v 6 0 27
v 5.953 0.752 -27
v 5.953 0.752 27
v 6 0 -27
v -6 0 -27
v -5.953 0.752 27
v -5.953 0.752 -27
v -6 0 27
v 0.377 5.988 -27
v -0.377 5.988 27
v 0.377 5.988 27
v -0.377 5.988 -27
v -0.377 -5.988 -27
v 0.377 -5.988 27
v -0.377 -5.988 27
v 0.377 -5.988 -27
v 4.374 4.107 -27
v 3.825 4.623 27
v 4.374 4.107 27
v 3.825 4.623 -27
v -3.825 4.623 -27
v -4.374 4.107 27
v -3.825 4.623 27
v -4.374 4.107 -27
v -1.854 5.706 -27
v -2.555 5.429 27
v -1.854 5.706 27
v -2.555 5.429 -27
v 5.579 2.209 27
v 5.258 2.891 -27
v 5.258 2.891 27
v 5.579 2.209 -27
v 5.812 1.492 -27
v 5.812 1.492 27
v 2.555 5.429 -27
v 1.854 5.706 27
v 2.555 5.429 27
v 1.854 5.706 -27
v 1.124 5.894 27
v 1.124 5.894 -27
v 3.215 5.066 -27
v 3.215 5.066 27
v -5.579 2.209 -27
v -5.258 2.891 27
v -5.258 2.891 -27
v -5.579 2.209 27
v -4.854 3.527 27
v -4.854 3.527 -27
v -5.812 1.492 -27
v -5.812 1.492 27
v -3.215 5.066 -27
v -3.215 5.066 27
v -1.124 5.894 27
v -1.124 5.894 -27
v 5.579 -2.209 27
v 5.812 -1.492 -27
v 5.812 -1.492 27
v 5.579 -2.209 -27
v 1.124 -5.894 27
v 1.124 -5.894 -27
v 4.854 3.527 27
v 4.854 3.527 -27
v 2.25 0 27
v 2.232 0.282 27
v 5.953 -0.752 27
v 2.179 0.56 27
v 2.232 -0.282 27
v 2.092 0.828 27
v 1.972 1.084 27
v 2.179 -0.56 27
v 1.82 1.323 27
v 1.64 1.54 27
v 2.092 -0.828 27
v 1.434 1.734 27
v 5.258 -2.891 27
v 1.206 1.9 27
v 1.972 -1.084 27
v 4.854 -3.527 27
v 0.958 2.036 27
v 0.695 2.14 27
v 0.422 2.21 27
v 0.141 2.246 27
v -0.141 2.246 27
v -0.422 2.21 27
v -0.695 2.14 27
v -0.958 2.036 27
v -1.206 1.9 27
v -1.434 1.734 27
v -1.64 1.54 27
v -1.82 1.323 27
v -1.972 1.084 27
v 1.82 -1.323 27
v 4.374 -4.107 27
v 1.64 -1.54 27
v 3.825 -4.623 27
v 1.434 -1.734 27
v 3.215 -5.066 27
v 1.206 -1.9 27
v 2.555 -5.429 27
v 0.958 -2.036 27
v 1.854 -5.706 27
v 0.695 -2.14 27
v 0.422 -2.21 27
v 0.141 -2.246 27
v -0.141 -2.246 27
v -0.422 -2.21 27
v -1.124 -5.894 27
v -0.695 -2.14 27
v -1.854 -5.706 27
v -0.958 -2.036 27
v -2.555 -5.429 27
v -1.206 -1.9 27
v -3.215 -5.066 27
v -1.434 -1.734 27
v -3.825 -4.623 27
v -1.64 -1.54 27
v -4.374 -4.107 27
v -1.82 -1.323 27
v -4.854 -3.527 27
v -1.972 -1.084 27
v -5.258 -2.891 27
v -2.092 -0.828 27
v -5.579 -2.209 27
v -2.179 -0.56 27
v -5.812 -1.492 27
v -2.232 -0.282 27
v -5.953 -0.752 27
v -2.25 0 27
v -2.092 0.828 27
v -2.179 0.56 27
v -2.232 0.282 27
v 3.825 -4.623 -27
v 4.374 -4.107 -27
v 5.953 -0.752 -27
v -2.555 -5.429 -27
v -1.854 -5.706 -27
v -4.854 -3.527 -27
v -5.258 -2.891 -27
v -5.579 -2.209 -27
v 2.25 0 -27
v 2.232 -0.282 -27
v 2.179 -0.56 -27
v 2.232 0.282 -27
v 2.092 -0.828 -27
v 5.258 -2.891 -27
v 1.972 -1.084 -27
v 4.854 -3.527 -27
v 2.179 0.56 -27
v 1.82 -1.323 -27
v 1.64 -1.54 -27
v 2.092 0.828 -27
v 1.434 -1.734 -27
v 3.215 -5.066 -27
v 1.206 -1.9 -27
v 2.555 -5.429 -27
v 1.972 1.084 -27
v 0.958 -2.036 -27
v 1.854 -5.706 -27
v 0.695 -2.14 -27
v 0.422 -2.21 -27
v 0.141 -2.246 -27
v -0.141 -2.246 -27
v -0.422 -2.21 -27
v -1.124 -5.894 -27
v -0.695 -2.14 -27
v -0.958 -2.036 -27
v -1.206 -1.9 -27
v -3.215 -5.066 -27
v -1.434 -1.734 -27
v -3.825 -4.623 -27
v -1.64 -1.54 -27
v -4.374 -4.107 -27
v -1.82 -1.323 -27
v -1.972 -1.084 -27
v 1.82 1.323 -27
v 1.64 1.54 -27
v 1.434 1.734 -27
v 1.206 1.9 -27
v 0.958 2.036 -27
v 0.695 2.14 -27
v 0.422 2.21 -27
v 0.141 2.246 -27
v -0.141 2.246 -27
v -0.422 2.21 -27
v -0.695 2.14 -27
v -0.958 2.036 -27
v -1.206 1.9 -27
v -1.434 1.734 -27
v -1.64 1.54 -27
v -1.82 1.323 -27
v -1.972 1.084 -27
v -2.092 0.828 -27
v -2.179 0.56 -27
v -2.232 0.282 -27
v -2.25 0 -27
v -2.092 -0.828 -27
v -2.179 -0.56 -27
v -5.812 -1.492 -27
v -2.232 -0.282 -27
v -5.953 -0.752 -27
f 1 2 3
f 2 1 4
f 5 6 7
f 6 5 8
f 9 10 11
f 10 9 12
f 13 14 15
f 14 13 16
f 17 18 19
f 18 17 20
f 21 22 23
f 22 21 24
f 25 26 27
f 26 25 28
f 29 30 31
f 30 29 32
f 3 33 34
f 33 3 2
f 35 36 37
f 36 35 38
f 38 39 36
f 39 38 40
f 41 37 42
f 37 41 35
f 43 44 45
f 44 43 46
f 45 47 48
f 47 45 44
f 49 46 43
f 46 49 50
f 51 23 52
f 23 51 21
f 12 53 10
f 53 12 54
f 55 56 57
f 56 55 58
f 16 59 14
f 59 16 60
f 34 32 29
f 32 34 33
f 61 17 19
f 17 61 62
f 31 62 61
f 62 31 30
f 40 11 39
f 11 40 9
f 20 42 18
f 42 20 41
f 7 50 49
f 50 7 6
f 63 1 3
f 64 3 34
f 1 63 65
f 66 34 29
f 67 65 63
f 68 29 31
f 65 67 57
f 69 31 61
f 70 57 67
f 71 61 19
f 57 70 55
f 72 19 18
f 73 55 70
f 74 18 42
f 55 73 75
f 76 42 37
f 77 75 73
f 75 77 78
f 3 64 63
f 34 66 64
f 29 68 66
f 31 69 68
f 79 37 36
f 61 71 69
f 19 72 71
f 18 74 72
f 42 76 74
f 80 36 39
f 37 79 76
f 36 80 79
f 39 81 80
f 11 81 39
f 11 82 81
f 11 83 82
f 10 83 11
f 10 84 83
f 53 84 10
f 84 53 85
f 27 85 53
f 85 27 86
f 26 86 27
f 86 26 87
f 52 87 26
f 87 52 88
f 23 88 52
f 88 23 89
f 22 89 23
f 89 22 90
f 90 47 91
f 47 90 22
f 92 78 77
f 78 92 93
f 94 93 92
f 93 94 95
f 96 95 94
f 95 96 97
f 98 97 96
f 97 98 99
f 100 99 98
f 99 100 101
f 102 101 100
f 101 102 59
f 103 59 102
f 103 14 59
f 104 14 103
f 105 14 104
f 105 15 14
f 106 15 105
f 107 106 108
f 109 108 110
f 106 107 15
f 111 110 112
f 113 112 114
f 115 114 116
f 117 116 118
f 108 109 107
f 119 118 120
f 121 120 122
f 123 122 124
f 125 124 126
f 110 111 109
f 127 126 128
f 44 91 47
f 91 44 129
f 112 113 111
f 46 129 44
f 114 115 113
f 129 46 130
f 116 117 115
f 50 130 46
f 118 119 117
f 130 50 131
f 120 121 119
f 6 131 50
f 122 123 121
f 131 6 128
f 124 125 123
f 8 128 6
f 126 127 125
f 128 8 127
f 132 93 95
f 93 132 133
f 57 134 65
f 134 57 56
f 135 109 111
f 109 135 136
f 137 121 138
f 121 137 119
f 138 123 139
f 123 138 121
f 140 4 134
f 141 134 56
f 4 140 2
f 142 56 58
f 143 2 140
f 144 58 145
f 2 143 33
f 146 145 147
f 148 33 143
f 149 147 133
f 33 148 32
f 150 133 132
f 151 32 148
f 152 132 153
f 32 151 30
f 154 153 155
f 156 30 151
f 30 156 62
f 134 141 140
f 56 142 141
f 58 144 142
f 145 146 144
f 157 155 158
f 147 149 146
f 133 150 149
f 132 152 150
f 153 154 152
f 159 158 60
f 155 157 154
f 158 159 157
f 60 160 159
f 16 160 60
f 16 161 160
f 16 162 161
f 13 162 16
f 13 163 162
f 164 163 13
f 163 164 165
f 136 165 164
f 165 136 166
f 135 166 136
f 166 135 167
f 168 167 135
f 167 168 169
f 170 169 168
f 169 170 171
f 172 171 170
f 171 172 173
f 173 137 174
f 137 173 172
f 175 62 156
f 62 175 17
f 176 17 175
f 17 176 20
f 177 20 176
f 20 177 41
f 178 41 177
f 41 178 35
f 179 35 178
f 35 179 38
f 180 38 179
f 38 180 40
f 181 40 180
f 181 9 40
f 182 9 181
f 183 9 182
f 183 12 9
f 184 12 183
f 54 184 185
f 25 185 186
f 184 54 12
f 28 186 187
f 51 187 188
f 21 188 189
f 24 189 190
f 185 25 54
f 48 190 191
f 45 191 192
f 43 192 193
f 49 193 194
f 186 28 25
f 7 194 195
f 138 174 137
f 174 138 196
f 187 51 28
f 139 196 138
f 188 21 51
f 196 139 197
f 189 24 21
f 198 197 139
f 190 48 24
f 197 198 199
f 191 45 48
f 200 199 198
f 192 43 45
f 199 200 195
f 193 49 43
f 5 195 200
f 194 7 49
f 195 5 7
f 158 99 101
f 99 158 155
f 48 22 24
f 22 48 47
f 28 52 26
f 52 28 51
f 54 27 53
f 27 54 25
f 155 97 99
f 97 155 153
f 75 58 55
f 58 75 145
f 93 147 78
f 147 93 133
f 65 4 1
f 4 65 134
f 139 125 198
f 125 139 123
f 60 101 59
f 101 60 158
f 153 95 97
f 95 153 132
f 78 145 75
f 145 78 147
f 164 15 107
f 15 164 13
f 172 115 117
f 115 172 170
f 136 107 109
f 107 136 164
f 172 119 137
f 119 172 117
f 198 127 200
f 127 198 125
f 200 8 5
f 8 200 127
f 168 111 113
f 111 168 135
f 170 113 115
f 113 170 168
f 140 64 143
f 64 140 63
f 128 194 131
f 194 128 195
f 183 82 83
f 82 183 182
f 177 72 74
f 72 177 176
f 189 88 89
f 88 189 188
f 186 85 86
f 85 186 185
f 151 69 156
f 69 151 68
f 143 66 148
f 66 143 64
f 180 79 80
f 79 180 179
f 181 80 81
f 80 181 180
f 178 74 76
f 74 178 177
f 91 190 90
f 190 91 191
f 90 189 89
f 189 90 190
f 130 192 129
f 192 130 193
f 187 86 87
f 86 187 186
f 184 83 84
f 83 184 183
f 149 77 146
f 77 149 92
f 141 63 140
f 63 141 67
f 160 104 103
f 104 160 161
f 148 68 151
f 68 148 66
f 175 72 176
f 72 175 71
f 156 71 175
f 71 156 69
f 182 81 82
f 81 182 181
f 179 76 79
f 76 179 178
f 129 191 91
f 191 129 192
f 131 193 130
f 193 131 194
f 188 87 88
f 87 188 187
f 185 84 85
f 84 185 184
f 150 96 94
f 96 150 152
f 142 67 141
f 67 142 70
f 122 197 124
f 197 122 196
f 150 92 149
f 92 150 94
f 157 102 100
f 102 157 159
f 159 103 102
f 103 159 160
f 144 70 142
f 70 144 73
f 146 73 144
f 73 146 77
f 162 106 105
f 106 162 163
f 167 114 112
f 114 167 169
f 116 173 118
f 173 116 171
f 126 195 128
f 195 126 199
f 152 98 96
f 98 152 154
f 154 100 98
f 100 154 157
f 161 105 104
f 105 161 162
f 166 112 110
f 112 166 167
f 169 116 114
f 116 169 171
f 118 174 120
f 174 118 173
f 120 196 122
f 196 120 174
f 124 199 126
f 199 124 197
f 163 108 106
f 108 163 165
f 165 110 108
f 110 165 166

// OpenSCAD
$fn = 50;


difference() {
	union() {
		translate(v = [0, 0, -27.0000000000]) {
			cylinder(h = 54, r = 6.0000000000);
		}
	}
	union() {
		translate(v = [0, 0, -100.0000000000]) {
			cylinder(h = 200, r = 2.2500000000);
		}
	}
}
